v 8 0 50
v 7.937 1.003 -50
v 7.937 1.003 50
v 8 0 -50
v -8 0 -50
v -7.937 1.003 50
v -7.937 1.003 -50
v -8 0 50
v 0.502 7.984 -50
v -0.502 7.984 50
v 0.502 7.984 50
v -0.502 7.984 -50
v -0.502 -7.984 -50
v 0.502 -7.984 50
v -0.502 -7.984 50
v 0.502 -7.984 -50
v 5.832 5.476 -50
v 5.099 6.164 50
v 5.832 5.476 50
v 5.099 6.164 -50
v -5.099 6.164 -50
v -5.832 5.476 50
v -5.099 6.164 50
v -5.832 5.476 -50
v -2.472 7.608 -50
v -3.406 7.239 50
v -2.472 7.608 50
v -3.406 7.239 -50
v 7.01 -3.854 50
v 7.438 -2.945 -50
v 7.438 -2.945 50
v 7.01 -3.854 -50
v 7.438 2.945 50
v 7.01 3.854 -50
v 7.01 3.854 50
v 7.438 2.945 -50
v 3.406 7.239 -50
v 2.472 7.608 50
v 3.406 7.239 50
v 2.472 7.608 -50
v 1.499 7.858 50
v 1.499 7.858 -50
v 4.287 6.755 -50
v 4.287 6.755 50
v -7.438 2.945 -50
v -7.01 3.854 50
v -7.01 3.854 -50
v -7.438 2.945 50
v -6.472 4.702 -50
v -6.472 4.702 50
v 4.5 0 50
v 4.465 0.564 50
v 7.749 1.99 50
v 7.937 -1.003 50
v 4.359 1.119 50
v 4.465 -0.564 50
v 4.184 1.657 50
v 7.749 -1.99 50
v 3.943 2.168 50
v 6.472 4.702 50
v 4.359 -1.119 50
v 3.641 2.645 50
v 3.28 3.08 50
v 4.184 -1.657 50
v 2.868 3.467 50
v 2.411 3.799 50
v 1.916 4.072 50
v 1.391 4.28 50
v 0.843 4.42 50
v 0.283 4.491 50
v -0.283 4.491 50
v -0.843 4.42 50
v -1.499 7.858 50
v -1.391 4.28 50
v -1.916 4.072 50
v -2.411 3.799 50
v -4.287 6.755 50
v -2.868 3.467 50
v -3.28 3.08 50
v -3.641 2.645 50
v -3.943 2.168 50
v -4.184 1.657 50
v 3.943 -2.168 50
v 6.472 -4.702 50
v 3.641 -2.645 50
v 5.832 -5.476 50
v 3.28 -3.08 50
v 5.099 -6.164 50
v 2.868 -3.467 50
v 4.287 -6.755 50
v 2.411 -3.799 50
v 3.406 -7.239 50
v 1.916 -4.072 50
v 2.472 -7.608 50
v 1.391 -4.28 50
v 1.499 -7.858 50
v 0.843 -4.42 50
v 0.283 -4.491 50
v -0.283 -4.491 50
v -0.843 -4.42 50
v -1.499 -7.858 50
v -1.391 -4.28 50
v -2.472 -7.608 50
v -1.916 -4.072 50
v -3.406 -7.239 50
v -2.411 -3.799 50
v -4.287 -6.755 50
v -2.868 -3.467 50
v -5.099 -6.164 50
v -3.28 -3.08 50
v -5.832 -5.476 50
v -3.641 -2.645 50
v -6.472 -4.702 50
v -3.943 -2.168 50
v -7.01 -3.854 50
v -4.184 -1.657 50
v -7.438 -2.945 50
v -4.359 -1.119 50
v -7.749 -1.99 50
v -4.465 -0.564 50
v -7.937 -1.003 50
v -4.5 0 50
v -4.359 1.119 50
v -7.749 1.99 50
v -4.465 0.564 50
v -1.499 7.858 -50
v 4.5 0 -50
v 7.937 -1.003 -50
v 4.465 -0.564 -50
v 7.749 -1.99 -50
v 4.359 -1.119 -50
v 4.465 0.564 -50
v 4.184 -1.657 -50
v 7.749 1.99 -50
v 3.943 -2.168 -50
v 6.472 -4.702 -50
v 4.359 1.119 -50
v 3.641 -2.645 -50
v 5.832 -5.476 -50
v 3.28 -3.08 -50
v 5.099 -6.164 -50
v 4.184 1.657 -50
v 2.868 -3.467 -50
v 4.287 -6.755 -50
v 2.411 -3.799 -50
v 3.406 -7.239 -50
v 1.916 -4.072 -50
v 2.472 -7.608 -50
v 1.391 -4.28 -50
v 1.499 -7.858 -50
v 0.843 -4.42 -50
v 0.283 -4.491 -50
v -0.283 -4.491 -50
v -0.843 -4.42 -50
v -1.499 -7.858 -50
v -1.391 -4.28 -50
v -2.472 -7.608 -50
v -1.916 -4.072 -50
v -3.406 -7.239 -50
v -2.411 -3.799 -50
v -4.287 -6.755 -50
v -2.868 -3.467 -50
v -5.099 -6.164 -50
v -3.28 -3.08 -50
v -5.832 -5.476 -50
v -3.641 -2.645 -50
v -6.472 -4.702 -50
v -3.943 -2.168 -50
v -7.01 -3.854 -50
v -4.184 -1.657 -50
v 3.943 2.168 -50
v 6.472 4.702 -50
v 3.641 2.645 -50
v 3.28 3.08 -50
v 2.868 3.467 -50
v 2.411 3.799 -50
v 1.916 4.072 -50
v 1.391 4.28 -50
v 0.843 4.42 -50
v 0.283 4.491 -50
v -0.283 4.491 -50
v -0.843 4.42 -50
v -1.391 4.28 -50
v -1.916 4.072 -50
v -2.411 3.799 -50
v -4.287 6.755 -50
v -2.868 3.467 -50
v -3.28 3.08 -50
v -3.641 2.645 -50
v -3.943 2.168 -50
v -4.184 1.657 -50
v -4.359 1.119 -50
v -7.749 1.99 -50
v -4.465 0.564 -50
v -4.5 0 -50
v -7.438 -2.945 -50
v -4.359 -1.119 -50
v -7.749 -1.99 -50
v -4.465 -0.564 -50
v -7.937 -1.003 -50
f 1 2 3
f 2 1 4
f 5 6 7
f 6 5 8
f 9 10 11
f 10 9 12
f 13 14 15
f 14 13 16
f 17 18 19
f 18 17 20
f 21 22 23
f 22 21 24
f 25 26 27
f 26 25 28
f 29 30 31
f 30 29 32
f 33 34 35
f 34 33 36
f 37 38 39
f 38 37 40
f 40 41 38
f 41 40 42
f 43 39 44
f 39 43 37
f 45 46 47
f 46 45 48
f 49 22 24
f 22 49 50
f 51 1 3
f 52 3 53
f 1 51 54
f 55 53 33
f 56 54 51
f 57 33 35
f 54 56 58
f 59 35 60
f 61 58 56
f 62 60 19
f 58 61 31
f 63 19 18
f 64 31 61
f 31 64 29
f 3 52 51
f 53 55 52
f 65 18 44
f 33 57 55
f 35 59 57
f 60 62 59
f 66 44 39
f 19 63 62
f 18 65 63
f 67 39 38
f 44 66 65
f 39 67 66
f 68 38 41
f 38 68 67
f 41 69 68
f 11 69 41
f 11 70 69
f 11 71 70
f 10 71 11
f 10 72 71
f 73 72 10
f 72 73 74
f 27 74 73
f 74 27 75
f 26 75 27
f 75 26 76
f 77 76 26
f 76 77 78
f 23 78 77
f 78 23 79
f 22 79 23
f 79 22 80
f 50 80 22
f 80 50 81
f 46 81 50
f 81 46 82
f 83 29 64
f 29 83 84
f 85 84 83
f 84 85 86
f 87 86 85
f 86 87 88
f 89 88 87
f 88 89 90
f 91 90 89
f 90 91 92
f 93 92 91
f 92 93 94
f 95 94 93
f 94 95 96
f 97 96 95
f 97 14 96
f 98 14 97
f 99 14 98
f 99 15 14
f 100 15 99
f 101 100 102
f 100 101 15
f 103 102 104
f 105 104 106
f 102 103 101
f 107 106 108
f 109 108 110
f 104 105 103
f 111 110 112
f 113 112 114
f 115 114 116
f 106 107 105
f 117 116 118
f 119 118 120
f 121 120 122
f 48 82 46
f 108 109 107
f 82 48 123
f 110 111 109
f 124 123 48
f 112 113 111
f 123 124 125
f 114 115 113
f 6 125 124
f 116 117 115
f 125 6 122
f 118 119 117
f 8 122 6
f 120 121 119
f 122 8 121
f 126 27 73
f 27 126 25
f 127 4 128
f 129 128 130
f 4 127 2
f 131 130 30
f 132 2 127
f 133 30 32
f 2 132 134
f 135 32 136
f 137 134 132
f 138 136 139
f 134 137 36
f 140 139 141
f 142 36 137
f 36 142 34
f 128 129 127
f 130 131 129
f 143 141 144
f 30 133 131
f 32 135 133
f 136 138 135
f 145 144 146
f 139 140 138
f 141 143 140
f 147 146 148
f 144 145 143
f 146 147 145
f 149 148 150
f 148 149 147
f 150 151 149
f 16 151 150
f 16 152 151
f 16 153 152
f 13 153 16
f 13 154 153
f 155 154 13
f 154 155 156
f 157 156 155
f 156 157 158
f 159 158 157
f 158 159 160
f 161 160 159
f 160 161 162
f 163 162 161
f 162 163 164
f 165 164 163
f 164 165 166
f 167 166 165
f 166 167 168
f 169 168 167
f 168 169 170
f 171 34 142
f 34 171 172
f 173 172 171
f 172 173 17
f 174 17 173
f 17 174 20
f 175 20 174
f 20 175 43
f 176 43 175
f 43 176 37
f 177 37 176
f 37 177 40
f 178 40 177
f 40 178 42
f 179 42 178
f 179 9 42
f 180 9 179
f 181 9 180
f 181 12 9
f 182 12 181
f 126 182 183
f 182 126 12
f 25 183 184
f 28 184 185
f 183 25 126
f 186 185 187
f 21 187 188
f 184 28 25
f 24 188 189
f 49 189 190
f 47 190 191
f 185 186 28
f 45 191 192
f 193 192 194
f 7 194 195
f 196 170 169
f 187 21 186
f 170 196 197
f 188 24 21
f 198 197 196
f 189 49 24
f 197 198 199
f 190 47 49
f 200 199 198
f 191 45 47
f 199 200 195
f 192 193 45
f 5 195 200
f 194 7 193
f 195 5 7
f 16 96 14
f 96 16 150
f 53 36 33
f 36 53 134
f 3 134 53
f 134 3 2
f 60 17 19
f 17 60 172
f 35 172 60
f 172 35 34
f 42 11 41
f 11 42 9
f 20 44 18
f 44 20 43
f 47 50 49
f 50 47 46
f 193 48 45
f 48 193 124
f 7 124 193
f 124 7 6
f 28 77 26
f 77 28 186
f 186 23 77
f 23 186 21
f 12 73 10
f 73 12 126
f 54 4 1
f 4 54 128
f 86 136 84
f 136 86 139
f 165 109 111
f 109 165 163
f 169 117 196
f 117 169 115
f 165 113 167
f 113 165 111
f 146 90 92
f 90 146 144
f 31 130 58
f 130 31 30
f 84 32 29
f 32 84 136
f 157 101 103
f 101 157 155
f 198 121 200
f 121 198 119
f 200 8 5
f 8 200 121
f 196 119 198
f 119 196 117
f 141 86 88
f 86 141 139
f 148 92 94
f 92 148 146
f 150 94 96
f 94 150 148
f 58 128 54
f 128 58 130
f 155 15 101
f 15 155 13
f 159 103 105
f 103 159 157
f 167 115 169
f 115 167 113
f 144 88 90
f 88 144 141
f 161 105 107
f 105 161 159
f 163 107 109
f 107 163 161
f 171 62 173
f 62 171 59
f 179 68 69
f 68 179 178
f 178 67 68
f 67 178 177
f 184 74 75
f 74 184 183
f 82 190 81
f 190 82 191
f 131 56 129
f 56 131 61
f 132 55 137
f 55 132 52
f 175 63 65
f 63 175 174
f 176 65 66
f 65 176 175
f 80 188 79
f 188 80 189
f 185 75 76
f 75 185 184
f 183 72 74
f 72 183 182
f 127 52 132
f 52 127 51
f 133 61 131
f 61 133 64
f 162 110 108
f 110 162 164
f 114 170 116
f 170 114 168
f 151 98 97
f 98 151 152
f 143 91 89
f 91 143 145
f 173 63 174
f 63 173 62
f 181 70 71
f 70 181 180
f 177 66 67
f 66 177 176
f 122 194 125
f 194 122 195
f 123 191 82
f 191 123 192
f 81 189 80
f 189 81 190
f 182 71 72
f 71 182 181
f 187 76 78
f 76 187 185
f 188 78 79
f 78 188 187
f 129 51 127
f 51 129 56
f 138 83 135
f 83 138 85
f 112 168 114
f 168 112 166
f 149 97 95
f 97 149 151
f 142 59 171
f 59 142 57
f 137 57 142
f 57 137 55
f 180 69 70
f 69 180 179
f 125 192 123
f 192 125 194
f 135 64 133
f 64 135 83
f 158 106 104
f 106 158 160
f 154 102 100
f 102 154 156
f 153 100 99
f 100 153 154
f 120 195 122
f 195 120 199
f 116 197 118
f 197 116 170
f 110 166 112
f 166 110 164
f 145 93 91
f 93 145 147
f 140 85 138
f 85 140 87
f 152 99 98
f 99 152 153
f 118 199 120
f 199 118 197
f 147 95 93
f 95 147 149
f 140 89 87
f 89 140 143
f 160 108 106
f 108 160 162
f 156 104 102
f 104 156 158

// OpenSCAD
$fn = 50;


difference() {
	union() {
		translate(v = [0, 0, -50.0000000000]) {
			cylinder(h = 100, r = 8.0000000000);
		}
	}
	union() {
		translate(v = [0, 0, -100.0000000000]) {
			cylinder(h = 200, r = 4.5000000000);
		}
	}
}
